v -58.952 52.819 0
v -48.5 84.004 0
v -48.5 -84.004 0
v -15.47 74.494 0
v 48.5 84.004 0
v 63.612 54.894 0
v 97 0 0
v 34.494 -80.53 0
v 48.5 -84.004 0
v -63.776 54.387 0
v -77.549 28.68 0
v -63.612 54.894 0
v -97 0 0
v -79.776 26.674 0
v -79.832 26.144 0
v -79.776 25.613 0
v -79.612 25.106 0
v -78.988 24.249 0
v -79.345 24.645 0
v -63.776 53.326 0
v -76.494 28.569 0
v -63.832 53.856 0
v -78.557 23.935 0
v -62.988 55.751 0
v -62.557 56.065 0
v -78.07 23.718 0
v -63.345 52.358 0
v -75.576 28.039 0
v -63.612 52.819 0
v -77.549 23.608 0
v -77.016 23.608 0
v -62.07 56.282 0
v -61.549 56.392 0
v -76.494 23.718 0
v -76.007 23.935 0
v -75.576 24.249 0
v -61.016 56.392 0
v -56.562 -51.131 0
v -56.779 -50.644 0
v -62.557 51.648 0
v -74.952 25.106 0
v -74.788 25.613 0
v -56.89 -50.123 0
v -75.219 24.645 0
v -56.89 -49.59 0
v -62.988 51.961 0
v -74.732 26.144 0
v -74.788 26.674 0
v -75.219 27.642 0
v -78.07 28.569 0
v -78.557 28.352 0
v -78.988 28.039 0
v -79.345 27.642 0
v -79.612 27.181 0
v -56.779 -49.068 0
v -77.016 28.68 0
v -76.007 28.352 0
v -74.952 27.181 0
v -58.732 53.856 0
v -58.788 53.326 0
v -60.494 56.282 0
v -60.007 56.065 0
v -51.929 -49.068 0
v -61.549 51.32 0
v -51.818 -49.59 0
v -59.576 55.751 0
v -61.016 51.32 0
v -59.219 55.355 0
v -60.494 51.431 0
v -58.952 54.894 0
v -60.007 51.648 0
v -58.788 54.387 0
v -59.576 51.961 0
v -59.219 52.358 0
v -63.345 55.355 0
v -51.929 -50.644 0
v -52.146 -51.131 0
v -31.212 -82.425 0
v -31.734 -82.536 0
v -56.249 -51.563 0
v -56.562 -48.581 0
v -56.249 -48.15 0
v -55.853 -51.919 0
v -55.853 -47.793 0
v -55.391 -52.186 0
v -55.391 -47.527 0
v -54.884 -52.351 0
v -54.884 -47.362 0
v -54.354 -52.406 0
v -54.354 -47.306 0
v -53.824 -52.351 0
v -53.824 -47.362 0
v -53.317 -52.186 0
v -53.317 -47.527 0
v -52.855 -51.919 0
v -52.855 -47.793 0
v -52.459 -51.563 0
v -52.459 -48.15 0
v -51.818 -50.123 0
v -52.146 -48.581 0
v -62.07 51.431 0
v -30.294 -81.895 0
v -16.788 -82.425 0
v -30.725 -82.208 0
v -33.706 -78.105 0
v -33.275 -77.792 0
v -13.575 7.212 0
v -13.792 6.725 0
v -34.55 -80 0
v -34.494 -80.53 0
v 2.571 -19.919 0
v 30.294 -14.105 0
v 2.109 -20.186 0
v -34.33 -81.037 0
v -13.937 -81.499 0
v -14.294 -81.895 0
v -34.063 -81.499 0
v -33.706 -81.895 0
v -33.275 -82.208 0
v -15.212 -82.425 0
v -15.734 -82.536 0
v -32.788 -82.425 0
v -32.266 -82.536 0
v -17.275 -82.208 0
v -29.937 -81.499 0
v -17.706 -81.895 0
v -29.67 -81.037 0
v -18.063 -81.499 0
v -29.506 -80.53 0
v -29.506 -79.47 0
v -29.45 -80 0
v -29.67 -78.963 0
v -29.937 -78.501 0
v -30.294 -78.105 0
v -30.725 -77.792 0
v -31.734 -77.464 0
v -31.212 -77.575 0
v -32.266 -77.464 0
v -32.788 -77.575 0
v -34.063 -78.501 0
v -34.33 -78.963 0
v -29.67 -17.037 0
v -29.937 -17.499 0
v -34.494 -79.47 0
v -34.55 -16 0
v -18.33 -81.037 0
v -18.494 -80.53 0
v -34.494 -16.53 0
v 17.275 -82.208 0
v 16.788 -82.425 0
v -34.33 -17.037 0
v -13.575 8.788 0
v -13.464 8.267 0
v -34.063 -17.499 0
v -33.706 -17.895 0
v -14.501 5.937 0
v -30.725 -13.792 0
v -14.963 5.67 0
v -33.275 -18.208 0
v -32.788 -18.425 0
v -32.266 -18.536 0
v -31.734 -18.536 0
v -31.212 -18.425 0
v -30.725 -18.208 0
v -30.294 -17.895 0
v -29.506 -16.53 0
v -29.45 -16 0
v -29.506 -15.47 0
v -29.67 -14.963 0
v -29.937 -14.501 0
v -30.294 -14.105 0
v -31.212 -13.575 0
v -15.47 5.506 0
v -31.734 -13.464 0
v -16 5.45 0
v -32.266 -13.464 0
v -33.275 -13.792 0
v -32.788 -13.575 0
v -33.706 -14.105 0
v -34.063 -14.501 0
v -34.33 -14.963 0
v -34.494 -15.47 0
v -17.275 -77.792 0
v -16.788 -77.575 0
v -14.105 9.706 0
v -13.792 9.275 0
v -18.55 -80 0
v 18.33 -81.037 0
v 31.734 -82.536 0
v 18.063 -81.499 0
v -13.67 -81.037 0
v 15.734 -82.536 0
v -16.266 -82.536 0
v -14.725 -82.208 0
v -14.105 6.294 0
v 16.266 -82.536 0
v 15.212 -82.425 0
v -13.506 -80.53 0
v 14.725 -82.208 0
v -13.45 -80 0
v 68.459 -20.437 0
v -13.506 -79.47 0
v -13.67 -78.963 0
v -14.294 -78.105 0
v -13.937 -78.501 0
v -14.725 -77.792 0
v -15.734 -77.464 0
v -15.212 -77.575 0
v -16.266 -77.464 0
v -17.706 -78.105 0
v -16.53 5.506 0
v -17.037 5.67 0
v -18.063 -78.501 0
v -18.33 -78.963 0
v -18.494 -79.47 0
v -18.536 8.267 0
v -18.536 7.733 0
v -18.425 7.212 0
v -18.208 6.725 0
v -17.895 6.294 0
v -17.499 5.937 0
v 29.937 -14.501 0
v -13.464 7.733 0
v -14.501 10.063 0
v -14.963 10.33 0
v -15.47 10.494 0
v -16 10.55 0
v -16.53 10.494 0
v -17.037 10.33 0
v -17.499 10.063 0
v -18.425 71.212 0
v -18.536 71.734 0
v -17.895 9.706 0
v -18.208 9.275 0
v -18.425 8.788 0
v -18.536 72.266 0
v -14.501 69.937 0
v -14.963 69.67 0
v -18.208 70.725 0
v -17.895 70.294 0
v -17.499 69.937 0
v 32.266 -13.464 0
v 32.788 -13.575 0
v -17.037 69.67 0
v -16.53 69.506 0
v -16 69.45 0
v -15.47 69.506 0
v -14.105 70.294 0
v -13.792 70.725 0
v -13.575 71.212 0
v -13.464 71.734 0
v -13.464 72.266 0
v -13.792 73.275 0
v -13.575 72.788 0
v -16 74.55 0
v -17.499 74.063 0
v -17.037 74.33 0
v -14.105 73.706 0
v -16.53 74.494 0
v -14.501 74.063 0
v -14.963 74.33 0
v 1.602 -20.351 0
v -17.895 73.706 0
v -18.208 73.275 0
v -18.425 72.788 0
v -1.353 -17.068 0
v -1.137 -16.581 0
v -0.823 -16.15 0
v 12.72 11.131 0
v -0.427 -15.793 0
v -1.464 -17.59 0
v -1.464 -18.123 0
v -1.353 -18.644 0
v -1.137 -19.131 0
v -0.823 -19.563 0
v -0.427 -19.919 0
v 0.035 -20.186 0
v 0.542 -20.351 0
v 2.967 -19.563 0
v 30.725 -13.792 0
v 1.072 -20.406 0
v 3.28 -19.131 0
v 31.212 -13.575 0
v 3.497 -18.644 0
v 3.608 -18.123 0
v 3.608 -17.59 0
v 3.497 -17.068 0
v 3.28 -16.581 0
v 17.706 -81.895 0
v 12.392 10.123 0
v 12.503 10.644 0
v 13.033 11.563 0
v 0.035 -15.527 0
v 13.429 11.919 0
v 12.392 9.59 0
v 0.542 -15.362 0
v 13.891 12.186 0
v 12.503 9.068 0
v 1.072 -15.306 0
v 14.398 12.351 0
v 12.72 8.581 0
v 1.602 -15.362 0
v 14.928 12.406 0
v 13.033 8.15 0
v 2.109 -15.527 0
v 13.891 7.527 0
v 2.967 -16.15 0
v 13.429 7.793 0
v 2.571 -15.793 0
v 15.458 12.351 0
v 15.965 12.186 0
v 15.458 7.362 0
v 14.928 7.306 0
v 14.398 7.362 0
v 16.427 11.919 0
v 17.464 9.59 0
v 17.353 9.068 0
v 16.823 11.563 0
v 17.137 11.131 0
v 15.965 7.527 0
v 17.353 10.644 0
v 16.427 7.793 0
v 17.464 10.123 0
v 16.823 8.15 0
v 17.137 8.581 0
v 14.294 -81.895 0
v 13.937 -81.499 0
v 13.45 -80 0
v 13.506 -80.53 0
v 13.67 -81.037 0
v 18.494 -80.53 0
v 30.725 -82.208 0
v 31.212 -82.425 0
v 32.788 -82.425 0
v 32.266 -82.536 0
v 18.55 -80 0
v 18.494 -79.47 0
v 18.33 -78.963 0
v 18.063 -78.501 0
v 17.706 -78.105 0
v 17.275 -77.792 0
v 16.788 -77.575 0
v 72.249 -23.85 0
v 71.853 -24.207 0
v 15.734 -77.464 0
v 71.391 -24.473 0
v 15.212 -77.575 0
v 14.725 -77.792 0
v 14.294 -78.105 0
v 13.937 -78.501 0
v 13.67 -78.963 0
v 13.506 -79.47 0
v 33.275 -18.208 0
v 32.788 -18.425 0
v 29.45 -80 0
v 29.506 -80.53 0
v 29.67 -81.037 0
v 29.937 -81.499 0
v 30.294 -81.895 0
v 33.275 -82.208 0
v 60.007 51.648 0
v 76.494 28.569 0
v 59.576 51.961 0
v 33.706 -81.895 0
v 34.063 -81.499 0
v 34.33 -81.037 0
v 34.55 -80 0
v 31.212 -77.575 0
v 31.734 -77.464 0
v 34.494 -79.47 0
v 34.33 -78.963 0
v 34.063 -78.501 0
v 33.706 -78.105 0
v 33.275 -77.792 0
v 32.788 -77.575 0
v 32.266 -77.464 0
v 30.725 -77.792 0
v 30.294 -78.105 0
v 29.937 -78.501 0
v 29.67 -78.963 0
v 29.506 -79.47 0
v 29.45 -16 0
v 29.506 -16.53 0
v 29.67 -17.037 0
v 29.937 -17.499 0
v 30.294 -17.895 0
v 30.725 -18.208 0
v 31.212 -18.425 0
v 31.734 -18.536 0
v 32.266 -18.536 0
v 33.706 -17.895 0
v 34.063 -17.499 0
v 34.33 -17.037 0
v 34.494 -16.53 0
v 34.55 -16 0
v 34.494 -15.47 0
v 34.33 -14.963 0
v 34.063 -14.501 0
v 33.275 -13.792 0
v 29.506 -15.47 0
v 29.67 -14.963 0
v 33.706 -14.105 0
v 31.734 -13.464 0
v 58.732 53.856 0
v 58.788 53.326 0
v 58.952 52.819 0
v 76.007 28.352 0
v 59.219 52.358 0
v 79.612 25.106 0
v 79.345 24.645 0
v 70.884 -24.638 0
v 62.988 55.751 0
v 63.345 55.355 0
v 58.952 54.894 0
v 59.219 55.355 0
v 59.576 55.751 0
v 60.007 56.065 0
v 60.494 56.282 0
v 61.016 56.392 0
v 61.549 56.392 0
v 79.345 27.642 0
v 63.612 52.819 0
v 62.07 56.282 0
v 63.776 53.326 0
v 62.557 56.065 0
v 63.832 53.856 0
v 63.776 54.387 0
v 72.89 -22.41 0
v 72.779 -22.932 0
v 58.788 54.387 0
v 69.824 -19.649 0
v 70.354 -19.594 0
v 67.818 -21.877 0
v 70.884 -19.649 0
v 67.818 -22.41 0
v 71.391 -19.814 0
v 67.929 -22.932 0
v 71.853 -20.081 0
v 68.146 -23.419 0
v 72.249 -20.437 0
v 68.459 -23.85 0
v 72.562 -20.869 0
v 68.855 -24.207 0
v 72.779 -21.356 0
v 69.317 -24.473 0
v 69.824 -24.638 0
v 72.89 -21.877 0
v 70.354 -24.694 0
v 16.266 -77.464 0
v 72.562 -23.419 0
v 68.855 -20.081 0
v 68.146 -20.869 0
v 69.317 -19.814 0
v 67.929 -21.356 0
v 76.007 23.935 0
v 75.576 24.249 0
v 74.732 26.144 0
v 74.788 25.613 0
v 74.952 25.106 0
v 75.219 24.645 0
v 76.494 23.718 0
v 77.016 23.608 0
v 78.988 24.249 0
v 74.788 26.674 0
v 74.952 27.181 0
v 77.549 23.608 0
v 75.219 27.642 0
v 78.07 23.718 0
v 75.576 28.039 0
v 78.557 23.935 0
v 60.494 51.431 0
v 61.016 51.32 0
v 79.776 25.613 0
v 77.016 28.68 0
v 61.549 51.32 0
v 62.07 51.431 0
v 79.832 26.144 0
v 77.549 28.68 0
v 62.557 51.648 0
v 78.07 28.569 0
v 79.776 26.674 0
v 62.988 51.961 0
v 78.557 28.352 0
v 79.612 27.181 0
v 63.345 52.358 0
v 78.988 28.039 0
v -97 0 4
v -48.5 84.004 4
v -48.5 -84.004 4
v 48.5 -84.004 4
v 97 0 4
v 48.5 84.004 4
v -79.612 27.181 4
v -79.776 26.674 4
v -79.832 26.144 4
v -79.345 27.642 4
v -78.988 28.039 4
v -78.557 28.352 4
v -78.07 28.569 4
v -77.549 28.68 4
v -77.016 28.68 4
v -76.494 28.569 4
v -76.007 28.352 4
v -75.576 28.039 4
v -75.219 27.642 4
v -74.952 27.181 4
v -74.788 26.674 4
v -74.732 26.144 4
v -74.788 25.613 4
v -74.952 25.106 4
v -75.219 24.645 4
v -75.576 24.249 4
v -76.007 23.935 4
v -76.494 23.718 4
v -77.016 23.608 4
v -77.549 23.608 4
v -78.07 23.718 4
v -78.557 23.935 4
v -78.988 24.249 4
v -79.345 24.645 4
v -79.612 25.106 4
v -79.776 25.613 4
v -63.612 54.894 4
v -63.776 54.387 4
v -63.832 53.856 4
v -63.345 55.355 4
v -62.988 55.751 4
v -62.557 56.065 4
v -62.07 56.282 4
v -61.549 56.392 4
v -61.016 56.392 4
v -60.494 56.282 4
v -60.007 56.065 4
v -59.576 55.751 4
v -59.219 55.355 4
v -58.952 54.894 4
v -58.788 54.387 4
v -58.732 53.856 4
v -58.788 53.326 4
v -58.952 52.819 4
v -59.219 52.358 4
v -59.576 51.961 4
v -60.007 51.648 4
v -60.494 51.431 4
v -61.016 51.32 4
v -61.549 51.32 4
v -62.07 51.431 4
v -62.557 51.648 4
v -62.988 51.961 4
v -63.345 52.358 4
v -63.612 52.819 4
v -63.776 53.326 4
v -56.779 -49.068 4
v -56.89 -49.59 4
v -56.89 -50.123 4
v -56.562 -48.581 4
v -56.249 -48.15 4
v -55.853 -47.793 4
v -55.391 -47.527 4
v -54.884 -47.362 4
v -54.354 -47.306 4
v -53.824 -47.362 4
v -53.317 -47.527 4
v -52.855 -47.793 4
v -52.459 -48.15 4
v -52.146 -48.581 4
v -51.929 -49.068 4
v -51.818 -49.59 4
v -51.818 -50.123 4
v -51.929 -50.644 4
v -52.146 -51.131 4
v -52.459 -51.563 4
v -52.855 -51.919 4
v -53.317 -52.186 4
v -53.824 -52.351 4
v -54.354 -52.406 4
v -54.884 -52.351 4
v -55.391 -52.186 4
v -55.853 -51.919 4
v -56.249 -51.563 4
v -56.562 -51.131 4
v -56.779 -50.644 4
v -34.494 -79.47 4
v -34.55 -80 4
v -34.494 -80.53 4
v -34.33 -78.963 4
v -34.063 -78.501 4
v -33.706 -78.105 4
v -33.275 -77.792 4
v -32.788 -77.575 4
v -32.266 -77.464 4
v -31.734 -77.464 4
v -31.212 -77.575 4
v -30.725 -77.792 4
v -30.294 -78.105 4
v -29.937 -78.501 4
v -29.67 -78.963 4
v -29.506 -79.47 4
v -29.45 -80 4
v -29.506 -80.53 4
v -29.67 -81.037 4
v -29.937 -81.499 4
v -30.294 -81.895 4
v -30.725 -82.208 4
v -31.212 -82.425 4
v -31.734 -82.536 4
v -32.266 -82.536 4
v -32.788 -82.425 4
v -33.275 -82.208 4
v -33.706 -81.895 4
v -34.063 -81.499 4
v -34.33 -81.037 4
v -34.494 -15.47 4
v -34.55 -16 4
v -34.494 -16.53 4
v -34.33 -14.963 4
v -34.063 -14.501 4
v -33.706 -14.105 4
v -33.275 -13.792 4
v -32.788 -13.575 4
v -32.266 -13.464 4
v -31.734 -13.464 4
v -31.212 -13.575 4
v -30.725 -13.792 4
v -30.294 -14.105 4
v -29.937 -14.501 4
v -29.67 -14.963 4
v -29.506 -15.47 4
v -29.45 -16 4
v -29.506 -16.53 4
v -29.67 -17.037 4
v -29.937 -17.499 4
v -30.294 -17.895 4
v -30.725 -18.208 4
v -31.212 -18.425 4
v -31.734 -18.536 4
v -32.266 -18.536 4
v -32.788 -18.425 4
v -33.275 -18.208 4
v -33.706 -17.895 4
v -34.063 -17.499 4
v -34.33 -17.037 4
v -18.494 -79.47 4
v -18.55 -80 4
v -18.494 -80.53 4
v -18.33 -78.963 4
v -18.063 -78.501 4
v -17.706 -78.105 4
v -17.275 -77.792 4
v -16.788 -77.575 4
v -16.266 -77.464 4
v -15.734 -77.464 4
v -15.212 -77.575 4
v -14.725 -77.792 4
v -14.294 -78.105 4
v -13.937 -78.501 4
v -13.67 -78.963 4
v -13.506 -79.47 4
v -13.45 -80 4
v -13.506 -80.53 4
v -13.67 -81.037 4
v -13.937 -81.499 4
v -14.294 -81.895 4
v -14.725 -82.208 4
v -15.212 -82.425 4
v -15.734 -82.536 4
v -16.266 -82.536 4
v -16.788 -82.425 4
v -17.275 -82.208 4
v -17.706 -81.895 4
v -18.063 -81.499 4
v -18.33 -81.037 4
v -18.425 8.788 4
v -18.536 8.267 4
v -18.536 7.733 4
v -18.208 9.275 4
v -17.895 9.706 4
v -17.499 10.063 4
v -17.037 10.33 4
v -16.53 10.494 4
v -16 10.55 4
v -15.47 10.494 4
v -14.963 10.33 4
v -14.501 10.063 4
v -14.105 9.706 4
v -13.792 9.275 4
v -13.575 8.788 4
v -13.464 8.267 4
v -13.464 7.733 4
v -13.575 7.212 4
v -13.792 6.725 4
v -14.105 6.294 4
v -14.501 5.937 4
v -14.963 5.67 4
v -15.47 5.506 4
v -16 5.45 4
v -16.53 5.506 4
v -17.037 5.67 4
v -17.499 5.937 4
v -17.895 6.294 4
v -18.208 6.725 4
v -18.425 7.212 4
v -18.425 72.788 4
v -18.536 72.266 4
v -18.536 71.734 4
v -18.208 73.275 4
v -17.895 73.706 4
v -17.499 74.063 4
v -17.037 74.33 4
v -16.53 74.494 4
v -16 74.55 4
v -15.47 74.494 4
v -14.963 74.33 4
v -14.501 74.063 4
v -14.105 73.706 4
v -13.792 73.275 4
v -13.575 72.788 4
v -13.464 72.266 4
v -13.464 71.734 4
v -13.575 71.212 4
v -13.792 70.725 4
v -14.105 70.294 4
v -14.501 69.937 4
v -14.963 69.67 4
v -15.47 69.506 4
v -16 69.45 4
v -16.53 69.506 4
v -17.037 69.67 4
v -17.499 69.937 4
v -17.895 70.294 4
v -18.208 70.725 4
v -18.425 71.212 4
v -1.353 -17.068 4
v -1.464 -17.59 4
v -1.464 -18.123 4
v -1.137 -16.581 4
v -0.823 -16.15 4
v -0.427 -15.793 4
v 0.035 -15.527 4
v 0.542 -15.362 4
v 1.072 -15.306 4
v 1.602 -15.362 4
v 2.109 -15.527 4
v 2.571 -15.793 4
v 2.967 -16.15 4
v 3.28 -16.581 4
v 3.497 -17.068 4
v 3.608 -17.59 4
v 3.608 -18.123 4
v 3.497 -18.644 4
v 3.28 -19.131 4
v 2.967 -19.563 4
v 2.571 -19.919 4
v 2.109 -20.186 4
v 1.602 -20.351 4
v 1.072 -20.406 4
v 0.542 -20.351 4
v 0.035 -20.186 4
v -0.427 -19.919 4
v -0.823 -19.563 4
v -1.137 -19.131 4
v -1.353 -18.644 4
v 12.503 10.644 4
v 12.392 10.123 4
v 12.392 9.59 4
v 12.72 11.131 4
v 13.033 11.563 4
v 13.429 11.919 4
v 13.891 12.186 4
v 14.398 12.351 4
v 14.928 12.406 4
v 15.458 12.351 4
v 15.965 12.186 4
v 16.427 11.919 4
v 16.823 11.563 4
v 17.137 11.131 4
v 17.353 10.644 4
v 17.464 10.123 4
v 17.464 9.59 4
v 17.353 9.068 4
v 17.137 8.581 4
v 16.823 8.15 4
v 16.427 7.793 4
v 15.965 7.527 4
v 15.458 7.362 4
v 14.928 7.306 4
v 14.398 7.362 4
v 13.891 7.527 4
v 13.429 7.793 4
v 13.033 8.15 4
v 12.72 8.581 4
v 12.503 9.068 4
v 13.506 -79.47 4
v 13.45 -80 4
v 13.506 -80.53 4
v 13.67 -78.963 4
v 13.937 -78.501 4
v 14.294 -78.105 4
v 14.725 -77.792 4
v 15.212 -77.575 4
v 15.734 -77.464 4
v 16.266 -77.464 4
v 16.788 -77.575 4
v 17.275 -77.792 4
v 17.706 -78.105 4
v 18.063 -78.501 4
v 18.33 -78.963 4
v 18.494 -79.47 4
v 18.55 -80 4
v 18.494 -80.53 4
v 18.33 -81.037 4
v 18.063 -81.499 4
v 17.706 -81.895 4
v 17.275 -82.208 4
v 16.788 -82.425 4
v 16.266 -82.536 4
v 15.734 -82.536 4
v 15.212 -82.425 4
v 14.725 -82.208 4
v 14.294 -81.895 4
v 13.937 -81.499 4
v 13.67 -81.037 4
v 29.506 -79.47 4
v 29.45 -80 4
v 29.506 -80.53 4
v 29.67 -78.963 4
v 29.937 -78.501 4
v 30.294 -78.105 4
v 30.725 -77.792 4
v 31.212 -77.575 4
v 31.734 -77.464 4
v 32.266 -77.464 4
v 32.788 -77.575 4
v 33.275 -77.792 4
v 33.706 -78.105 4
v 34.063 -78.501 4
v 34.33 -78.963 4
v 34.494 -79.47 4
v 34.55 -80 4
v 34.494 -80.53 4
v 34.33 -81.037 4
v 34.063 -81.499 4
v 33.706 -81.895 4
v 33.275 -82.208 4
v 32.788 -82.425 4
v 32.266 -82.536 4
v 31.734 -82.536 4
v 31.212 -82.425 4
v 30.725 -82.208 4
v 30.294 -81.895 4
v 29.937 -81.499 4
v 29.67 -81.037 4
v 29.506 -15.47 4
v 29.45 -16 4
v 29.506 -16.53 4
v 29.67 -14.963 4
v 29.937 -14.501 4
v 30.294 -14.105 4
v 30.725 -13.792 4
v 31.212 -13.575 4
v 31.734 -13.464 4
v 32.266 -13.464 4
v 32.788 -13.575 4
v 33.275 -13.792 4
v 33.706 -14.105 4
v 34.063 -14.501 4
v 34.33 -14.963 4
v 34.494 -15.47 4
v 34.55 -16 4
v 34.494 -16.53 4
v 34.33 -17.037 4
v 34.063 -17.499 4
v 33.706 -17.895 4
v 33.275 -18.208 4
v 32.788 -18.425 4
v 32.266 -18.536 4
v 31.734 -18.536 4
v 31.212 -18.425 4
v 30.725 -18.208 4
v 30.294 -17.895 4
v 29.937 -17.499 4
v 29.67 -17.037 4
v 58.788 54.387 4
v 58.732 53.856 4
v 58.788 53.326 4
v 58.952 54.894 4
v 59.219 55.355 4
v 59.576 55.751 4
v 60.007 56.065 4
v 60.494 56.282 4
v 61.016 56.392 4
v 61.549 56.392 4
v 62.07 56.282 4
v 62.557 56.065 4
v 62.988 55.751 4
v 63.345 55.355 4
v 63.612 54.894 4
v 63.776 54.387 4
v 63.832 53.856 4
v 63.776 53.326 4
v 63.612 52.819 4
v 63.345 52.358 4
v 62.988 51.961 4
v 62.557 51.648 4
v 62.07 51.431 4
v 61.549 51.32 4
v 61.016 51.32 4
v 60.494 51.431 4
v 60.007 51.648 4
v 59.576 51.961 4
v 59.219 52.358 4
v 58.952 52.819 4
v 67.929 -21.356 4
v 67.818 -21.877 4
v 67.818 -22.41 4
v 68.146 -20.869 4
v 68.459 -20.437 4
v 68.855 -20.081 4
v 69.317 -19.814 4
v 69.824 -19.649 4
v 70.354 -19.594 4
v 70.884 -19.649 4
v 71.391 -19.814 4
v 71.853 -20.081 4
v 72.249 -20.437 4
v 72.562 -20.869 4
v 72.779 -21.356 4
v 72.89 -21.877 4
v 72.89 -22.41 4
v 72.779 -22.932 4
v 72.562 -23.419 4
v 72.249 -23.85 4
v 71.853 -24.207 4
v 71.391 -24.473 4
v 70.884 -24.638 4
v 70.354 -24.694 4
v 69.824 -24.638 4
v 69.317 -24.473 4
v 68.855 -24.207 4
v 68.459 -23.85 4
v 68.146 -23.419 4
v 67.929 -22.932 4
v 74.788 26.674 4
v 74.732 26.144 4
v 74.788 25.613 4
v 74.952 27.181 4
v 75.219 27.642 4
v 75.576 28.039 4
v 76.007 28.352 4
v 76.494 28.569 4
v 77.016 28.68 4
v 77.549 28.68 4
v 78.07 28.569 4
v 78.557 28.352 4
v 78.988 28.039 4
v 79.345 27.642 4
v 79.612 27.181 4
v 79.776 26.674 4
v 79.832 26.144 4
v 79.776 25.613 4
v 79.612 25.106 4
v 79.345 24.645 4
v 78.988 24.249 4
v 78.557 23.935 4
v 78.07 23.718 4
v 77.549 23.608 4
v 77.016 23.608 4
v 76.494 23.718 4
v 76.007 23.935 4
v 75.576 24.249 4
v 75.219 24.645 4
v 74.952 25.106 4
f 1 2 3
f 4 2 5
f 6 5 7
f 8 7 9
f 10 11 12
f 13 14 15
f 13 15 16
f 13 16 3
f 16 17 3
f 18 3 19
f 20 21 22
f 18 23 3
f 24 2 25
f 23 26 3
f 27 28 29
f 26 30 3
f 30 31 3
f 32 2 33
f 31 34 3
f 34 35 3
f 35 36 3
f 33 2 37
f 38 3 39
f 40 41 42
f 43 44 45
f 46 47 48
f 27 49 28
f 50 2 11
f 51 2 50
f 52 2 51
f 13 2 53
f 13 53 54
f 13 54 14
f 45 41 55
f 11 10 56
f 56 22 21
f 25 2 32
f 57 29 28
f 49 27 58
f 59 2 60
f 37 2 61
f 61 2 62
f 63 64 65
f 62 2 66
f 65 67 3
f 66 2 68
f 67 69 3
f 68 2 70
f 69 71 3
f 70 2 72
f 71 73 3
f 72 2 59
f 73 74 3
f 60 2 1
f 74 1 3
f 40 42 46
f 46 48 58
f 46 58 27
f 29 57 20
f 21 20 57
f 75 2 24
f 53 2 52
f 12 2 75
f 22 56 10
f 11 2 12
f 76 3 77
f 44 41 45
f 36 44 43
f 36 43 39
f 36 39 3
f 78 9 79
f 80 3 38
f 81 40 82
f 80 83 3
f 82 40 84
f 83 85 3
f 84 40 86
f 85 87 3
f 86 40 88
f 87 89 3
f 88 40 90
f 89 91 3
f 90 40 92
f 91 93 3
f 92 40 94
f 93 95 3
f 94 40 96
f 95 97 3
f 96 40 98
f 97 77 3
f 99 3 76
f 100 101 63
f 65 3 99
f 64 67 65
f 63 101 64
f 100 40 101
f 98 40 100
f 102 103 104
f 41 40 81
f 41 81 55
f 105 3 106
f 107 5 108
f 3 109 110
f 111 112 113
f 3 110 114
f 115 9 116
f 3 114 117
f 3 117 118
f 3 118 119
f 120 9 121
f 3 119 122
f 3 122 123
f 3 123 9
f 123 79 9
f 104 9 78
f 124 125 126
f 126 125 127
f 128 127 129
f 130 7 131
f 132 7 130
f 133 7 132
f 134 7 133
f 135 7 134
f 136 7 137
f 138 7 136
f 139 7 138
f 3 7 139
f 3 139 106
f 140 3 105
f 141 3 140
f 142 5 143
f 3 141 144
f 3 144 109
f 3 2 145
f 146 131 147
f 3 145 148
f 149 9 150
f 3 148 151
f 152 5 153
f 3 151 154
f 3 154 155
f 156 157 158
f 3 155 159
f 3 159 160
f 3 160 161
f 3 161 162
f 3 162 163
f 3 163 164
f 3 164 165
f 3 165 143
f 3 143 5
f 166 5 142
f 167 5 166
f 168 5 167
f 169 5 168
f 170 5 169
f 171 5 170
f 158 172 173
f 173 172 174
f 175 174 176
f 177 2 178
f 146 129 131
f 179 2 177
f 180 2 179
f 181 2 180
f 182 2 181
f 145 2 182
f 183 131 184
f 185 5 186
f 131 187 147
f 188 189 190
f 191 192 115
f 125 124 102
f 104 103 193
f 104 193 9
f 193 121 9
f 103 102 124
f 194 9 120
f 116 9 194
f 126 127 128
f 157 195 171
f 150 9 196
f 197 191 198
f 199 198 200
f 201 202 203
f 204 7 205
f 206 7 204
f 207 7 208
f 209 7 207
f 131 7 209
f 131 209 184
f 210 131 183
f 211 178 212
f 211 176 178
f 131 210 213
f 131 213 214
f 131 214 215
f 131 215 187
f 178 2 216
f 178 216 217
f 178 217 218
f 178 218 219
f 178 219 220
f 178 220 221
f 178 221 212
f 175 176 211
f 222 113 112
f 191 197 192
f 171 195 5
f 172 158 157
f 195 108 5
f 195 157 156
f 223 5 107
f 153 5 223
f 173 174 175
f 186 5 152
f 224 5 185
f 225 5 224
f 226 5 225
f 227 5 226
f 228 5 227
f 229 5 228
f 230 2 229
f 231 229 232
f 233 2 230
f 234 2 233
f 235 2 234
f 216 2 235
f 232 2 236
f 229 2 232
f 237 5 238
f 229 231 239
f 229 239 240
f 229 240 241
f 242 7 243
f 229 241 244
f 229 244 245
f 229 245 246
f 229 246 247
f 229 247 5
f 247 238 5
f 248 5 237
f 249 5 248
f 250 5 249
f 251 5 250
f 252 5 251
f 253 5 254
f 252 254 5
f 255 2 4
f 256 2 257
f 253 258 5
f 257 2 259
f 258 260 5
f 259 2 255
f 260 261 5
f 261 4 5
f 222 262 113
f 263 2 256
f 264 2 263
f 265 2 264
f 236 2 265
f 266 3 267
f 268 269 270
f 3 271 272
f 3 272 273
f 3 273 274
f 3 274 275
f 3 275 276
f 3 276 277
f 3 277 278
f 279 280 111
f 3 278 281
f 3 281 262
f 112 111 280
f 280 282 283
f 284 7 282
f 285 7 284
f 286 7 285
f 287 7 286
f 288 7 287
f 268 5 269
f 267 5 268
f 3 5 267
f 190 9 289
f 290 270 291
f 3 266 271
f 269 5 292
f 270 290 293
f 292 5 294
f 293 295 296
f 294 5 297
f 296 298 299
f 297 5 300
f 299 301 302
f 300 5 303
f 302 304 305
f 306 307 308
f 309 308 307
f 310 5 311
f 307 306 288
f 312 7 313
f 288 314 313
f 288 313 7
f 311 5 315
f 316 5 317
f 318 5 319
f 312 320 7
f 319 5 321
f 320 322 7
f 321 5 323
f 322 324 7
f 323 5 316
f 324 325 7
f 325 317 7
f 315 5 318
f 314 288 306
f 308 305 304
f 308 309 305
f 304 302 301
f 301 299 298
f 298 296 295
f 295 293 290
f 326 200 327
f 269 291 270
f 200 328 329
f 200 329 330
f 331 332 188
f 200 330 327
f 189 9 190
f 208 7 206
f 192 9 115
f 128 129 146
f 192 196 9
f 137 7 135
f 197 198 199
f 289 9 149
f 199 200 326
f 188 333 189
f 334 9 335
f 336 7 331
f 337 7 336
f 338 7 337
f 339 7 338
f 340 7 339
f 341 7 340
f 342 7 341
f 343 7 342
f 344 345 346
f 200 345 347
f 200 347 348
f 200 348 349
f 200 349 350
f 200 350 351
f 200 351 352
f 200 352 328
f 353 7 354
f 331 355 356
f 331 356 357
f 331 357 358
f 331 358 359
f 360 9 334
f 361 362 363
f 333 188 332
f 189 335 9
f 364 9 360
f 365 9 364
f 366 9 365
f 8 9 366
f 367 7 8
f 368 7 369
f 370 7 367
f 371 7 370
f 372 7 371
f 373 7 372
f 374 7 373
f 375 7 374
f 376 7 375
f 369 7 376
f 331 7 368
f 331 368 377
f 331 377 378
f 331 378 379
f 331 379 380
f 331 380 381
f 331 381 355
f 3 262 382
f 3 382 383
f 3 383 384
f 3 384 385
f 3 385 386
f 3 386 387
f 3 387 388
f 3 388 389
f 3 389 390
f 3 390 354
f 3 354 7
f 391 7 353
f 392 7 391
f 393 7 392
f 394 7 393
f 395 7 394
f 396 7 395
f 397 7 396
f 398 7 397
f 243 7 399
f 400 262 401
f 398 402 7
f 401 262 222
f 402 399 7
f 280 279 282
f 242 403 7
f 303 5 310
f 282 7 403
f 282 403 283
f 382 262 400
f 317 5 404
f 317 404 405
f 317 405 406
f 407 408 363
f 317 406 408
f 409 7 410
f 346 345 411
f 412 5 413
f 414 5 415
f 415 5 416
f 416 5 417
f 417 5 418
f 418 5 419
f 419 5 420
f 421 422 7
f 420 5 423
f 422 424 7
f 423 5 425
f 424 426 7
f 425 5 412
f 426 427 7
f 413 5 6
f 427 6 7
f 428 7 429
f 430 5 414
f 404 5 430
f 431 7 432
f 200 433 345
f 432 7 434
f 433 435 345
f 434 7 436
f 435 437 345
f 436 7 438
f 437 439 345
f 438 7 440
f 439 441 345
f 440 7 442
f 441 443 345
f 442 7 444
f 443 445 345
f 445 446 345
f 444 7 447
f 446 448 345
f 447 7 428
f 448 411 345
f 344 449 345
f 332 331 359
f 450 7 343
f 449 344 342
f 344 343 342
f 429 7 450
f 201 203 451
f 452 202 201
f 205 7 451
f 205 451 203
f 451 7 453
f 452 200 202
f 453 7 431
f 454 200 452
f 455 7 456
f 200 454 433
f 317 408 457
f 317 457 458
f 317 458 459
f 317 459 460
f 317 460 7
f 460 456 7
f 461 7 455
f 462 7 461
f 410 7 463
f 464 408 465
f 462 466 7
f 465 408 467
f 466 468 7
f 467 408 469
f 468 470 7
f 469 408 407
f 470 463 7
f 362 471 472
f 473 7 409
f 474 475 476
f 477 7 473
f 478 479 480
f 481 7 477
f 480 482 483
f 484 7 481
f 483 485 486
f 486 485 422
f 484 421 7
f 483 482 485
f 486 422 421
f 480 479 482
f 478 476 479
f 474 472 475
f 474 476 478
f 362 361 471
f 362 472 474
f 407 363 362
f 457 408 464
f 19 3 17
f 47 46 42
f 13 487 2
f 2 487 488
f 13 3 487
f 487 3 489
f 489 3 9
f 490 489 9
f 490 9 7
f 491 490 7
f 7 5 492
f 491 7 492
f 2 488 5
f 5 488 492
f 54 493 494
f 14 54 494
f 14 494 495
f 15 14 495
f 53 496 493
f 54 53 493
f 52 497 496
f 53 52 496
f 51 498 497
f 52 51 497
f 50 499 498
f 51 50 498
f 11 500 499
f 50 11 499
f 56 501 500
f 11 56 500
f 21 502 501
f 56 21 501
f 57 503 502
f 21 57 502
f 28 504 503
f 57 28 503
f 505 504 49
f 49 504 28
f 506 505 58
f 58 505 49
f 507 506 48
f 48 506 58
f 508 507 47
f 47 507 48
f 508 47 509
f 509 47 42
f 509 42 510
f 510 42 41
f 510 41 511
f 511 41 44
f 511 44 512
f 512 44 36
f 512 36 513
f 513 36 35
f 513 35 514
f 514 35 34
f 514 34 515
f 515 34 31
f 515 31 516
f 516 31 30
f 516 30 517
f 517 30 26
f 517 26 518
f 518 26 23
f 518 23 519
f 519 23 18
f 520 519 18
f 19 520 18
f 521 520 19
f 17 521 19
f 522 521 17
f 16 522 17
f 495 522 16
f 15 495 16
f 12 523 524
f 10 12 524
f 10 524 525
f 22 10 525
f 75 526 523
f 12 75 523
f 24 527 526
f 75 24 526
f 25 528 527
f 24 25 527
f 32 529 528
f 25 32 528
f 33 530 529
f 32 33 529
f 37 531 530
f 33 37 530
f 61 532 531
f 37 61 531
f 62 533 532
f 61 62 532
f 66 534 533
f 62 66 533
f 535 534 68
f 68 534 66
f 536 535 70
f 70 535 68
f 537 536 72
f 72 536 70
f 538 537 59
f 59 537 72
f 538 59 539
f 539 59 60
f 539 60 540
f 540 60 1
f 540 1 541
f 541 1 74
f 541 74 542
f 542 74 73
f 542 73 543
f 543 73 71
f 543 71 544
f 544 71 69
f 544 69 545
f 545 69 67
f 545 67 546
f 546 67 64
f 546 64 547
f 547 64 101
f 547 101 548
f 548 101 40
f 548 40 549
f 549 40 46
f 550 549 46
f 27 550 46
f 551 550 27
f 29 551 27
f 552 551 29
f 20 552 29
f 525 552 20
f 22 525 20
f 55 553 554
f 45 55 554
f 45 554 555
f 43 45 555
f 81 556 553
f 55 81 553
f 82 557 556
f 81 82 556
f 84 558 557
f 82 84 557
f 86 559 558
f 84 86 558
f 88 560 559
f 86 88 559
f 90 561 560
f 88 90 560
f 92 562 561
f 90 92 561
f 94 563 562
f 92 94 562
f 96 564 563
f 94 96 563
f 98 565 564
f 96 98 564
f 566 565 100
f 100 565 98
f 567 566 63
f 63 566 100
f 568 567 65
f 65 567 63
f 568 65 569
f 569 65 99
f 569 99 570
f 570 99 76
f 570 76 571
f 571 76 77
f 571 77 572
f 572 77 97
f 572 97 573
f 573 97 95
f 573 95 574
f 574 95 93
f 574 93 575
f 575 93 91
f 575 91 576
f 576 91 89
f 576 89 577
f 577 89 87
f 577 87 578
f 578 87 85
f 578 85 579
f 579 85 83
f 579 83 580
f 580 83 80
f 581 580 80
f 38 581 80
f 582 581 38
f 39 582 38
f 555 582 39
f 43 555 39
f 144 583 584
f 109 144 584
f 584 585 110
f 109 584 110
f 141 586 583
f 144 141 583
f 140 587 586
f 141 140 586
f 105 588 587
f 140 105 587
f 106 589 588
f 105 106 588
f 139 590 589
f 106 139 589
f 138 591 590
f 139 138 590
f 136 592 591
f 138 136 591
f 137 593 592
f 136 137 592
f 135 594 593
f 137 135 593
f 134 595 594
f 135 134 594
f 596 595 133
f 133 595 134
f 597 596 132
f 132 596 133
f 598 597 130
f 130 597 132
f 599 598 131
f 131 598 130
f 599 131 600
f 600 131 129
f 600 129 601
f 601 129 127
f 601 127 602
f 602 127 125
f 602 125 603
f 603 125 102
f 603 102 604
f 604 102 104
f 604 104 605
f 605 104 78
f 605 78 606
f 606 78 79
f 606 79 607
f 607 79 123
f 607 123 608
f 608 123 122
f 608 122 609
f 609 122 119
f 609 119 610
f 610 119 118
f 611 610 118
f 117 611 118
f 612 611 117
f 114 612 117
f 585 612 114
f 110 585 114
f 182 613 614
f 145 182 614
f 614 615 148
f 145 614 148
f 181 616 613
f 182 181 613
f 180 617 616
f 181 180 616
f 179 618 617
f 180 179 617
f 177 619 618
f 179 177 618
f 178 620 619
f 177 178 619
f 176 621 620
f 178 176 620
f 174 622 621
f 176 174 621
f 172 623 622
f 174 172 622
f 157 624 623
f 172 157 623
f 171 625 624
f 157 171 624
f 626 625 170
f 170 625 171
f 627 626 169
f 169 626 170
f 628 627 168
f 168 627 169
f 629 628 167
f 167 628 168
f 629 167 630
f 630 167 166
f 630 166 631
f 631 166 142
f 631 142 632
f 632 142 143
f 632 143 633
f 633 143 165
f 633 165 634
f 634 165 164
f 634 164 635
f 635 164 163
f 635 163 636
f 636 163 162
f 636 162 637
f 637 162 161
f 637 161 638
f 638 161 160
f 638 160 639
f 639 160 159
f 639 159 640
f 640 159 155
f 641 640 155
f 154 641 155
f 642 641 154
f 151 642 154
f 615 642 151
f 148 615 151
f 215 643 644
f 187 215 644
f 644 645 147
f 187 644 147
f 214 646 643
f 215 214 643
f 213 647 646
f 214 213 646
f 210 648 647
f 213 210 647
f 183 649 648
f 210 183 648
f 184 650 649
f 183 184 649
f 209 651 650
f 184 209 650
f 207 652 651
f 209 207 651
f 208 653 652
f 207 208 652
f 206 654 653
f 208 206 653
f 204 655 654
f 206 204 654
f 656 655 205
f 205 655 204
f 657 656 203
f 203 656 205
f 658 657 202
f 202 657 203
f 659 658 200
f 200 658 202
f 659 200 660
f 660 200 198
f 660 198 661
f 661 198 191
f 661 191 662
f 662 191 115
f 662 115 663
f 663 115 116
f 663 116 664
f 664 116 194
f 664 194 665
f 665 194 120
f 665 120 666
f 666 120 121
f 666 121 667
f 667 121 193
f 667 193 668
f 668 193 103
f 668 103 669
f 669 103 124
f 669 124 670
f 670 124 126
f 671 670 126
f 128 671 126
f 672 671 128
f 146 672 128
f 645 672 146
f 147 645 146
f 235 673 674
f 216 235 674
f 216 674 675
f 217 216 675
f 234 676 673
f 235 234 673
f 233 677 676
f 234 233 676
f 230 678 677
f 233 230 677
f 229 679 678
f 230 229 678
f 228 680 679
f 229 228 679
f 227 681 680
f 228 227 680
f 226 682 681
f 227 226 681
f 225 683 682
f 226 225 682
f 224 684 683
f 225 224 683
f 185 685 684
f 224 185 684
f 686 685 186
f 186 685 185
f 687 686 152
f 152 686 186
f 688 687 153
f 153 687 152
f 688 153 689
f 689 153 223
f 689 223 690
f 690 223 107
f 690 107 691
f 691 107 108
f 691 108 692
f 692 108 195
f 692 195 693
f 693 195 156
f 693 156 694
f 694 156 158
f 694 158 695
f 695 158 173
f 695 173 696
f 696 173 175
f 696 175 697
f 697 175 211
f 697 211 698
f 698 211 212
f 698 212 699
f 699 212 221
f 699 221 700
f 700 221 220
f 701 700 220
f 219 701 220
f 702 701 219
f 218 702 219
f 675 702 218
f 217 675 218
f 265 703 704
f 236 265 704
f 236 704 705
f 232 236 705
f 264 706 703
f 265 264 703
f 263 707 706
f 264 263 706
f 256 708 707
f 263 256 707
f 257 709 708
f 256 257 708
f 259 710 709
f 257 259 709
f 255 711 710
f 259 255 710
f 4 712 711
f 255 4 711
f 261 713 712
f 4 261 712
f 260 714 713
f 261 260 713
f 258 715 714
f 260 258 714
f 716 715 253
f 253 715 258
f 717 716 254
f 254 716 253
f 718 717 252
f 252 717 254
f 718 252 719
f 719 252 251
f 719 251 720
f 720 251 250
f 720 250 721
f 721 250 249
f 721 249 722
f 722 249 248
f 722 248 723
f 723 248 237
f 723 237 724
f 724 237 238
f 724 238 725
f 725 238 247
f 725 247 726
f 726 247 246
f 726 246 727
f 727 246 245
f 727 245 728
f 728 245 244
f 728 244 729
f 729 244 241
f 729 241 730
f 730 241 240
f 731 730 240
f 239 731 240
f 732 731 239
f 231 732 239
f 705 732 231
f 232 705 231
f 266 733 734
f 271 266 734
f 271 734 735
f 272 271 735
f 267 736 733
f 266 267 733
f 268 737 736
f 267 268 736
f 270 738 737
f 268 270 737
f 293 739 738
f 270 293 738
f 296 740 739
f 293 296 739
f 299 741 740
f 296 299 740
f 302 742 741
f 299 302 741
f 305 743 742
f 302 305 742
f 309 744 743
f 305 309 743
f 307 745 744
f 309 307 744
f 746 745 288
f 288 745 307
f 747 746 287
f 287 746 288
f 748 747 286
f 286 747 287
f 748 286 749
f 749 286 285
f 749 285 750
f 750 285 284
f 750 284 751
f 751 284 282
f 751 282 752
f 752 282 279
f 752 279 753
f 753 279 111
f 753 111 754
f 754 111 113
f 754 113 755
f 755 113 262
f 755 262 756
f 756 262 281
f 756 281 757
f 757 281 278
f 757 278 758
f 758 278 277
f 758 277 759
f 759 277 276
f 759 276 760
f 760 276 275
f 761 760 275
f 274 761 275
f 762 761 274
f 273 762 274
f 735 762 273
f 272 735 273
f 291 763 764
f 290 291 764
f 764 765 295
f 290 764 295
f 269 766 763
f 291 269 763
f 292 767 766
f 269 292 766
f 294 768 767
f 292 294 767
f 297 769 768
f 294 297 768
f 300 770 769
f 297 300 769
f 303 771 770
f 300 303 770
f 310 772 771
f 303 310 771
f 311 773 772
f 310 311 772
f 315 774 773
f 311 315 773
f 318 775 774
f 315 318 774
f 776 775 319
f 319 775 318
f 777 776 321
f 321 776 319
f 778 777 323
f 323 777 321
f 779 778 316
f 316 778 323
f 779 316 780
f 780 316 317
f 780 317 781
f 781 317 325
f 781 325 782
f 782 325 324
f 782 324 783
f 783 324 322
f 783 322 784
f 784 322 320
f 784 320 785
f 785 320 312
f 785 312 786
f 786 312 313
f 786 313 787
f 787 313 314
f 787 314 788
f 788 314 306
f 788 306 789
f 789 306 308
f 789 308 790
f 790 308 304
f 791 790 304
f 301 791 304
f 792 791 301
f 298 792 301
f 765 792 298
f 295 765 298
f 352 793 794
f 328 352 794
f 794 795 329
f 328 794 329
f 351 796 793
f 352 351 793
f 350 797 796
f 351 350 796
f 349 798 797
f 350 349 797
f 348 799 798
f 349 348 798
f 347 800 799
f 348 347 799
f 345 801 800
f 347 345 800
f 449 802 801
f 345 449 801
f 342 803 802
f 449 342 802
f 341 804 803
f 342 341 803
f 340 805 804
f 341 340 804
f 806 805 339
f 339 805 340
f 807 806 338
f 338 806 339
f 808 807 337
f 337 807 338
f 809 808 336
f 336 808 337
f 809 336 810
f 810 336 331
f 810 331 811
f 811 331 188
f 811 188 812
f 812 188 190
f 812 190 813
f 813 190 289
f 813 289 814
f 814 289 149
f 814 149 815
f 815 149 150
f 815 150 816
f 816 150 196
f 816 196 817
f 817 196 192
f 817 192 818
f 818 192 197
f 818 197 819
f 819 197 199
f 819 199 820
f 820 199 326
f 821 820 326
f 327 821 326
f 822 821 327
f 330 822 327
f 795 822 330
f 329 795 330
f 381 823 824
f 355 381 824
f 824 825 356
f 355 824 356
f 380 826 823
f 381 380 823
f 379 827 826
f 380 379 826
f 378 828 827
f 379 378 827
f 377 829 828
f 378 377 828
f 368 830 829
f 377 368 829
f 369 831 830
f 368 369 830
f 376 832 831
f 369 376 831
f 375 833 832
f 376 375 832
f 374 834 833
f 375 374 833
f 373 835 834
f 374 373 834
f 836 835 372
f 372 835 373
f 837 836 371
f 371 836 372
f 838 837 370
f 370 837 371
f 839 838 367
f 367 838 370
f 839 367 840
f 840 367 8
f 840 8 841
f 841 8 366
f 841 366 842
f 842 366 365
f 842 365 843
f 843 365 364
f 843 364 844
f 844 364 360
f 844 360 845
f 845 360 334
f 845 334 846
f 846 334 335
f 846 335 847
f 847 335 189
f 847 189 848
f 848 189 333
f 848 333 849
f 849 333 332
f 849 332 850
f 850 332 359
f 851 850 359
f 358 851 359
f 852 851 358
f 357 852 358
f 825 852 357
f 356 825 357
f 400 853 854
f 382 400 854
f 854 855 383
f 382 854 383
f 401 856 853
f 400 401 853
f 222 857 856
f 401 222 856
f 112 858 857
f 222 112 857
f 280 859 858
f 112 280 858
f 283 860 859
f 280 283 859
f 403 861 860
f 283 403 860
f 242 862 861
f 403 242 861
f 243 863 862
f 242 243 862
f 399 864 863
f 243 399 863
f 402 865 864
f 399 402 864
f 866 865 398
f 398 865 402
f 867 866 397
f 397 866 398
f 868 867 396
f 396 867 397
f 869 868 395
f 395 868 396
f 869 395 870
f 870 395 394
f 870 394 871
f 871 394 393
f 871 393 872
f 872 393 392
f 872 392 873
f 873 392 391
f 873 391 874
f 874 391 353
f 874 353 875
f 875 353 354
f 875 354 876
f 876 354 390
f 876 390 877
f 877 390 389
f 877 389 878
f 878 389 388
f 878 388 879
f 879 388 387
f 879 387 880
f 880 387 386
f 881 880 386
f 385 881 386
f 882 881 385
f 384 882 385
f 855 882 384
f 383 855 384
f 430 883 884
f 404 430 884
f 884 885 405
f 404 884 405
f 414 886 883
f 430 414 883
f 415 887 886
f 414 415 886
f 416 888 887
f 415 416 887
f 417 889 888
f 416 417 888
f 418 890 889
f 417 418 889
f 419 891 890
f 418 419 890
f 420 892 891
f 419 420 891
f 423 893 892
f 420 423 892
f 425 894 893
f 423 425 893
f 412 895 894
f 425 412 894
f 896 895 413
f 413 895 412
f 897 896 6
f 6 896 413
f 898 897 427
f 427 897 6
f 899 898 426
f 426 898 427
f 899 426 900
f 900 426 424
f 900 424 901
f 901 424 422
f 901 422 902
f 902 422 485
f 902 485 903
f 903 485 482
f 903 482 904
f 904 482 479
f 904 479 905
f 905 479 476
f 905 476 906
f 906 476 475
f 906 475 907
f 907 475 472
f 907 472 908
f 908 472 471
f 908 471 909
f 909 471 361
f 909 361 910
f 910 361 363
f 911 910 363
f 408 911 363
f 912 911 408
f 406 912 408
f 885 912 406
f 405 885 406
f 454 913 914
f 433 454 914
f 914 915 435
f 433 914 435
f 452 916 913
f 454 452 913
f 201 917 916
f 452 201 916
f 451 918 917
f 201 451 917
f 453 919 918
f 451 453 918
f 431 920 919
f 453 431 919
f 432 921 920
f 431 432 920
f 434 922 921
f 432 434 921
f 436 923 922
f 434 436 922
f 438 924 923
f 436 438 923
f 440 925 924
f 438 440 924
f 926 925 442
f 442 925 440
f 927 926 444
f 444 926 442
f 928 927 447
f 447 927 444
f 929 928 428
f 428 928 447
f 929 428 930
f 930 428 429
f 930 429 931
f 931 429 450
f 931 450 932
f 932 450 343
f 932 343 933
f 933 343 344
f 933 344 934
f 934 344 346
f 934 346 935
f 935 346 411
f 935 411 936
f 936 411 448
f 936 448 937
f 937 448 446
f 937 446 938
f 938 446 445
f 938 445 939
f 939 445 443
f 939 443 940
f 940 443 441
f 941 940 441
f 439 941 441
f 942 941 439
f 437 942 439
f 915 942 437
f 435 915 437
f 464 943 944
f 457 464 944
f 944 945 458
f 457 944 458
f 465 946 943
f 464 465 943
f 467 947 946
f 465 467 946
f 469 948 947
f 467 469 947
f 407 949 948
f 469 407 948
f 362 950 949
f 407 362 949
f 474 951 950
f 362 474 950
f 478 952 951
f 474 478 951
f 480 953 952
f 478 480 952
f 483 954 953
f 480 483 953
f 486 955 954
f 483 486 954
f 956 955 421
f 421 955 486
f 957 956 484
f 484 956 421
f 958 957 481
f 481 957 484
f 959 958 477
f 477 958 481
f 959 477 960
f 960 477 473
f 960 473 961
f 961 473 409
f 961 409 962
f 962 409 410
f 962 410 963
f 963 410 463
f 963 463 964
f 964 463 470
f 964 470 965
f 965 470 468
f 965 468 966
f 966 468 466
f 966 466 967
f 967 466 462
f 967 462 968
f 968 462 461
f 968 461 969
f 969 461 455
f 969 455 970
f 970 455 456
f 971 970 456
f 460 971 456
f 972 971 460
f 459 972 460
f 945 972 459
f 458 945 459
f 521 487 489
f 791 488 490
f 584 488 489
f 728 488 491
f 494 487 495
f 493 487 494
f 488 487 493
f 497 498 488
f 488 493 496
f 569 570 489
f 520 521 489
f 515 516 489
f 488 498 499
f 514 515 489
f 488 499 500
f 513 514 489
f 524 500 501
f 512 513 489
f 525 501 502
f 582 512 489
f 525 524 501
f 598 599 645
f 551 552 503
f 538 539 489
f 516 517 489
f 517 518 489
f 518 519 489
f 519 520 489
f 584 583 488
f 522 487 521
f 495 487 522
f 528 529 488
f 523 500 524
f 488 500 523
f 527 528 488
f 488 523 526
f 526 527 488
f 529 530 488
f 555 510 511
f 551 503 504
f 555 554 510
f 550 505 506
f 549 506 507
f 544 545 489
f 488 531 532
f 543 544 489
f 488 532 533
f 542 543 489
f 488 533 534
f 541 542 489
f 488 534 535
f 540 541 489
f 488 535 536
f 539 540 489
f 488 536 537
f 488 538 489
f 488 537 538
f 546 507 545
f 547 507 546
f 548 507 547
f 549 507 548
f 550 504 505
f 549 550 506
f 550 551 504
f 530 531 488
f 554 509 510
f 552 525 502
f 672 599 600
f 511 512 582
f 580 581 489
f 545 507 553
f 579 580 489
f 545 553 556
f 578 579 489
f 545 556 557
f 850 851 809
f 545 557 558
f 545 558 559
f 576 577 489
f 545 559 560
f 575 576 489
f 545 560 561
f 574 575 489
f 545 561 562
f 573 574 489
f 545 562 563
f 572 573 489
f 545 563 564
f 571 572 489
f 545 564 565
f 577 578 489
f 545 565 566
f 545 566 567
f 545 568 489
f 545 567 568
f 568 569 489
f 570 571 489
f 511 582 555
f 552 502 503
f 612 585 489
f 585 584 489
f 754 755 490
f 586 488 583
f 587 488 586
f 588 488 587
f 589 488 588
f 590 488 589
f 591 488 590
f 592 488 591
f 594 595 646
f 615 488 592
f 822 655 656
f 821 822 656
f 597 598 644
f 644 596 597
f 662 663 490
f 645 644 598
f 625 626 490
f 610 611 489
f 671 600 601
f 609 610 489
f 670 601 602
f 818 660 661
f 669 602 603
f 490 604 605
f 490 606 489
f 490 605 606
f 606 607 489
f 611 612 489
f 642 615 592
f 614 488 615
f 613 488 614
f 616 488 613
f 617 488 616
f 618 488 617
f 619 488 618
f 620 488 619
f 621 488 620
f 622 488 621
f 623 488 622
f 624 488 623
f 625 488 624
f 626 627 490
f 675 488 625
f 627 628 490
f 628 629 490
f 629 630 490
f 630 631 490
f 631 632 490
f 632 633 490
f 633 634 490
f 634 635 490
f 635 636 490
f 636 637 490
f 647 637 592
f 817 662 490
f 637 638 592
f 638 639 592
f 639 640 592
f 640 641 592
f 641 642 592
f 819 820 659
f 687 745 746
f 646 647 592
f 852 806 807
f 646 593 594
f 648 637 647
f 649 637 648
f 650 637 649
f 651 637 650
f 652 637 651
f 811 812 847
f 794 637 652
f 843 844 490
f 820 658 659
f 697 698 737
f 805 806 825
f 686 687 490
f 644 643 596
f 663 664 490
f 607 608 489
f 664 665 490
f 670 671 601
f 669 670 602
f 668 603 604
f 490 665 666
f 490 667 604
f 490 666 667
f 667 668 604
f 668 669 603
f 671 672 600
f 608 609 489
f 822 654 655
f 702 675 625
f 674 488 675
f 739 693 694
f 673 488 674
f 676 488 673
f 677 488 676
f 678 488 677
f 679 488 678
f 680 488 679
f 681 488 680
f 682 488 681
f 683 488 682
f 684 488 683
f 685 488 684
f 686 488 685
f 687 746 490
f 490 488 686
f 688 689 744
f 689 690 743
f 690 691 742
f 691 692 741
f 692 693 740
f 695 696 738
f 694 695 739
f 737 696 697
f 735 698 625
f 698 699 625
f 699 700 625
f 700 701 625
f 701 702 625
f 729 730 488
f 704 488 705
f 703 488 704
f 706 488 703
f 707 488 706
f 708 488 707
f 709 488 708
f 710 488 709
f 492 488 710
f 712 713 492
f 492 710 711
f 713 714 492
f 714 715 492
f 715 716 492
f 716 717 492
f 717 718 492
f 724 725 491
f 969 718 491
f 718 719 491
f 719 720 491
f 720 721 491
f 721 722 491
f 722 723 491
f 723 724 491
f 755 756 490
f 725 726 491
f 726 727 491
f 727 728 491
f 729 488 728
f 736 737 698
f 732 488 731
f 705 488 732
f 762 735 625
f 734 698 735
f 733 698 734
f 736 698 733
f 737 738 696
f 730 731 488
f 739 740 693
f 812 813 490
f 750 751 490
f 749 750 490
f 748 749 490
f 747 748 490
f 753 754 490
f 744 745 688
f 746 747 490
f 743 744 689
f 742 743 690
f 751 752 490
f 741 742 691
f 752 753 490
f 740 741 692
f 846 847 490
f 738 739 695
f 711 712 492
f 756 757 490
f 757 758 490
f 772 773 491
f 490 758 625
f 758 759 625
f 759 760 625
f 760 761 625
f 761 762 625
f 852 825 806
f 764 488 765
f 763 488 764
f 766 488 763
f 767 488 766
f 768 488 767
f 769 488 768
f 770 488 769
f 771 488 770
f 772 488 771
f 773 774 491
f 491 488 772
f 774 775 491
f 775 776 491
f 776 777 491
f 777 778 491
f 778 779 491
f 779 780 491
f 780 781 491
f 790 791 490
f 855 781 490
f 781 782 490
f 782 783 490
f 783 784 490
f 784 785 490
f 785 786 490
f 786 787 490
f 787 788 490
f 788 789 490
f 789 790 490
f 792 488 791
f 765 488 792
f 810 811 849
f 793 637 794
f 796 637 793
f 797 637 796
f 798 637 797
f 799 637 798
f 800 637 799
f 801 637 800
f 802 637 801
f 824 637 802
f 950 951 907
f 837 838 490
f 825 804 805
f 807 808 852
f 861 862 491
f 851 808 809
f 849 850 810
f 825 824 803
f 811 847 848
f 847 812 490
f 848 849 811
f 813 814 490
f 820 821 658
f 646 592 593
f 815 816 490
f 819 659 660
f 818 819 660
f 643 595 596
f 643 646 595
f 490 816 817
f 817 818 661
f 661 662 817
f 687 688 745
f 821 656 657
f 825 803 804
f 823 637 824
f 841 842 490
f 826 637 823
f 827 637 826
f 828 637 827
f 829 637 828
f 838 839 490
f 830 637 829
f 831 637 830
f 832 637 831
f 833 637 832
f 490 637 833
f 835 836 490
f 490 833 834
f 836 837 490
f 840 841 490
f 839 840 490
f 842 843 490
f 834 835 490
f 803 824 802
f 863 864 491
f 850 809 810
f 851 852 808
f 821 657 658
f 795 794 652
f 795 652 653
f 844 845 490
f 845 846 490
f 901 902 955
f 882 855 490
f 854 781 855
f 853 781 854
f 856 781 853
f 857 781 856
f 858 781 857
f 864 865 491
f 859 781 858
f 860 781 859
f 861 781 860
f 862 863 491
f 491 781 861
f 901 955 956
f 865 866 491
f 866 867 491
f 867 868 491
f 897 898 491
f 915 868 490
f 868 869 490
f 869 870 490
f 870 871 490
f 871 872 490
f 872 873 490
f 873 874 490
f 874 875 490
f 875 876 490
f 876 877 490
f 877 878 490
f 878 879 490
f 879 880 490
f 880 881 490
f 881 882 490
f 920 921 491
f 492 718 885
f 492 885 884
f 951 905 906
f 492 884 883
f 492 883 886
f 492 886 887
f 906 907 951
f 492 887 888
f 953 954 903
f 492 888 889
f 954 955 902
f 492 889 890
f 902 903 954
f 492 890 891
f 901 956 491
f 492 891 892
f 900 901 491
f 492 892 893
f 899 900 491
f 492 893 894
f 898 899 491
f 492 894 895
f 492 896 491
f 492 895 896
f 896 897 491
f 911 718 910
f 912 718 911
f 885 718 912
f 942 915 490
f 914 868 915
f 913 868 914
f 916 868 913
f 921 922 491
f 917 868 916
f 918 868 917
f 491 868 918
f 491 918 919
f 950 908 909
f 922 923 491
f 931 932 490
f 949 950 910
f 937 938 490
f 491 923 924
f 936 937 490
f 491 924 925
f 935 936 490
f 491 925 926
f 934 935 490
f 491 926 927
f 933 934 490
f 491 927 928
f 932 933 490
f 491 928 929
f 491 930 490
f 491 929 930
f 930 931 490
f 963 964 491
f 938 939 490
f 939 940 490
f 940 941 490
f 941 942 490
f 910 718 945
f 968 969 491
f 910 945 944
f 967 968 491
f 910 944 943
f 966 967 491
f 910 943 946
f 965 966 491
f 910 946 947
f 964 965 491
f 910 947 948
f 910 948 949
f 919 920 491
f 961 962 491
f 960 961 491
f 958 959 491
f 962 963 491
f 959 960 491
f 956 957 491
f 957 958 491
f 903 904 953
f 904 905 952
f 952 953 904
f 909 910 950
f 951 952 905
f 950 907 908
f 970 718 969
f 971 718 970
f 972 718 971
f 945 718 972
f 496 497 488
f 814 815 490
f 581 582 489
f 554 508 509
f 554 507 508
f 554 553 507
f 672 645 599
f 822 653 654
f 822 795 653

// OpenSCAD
beam_width    = 8;
hole_diameter = 5.1;
hole_radius   = hole_diameter / 2;


module beam(number_of_holes, step=8) {
    beam_length = number_of_holes * 8;
        // Cut the holes
        for (x=[4 : step : beam_length]) {
            translate([x-4,0,2])
            cylinder(r=2.55, h=12, $fn=30);
        }
}


module side_beam(number_of_holes) {
    beam_length = number_of_holes * 8;
    for (x=[beam_width/2 : beam_width*4 : beam_length]) {
        translate([x-4,0,2])
        cylinder(r=hole_radius, h=12, $fn=30);
    }
}

module side_connectors() {
    rotate(a=0)
    translate([-16,-beam_width*10,-2])
    side_beam(5);
	
    rotate(a=120)
    translate([-16,-beam_width*10,-2])
    side_beam(5);
	
    rotate(a=240)
    translate([-16,-beam_width*10,-2])
    side_beam(5);
}



// Uncomment 'projection' to create 2D (DXF-able) version
//projection(cut=true) {
    difference(){

        // Base plate
        //cube([8*9, beam_width * 9, 4]);
        cylinder(r=beam_width*12+1, h=4, $fn=6);
	
        // Delta-bot leg mounting holes
        //translate([36,36,-5]) 
        translate([0,0,-5])
        side_connectors();
		
        rotate(90)
        translate([0,0,-5])
	   center_connectors();

        rotate(0)
	    translate([0,-8*6,0])
        box();
    }
//}


module box() {
        // Bottom row
        translate([-beam_width * 5,-beam_width*5+4,0])
        for (x=[8 :  beam_width * 8 : beam_width * 9]) {
            translate([x, beam_width/2, -10])
            cylinder(r=2.55, h=20, $fn=30);
        }
	
        // Top row
        translate([-beam_width * 5,-beam_width*4-4,0])
        for (x=[8 : beam_width * 8 : beam_width * 9]) {
            translate([x, (beam_width/2) + beam_width * 8, -10])
            cylinder(r=2.55, h=20, $fn=30);
	   }
}

module center_connectors() {
    translate([8,16,0])
    rotate(a=0)
    beam(10,step=8*8);
	

    rotate(a=120)
    translate([8,16,0])
    beam(10,step=8*8);
	

    rotate(a=240)
    translate([8,16,0])
    beam(10,step=8*8);
}
